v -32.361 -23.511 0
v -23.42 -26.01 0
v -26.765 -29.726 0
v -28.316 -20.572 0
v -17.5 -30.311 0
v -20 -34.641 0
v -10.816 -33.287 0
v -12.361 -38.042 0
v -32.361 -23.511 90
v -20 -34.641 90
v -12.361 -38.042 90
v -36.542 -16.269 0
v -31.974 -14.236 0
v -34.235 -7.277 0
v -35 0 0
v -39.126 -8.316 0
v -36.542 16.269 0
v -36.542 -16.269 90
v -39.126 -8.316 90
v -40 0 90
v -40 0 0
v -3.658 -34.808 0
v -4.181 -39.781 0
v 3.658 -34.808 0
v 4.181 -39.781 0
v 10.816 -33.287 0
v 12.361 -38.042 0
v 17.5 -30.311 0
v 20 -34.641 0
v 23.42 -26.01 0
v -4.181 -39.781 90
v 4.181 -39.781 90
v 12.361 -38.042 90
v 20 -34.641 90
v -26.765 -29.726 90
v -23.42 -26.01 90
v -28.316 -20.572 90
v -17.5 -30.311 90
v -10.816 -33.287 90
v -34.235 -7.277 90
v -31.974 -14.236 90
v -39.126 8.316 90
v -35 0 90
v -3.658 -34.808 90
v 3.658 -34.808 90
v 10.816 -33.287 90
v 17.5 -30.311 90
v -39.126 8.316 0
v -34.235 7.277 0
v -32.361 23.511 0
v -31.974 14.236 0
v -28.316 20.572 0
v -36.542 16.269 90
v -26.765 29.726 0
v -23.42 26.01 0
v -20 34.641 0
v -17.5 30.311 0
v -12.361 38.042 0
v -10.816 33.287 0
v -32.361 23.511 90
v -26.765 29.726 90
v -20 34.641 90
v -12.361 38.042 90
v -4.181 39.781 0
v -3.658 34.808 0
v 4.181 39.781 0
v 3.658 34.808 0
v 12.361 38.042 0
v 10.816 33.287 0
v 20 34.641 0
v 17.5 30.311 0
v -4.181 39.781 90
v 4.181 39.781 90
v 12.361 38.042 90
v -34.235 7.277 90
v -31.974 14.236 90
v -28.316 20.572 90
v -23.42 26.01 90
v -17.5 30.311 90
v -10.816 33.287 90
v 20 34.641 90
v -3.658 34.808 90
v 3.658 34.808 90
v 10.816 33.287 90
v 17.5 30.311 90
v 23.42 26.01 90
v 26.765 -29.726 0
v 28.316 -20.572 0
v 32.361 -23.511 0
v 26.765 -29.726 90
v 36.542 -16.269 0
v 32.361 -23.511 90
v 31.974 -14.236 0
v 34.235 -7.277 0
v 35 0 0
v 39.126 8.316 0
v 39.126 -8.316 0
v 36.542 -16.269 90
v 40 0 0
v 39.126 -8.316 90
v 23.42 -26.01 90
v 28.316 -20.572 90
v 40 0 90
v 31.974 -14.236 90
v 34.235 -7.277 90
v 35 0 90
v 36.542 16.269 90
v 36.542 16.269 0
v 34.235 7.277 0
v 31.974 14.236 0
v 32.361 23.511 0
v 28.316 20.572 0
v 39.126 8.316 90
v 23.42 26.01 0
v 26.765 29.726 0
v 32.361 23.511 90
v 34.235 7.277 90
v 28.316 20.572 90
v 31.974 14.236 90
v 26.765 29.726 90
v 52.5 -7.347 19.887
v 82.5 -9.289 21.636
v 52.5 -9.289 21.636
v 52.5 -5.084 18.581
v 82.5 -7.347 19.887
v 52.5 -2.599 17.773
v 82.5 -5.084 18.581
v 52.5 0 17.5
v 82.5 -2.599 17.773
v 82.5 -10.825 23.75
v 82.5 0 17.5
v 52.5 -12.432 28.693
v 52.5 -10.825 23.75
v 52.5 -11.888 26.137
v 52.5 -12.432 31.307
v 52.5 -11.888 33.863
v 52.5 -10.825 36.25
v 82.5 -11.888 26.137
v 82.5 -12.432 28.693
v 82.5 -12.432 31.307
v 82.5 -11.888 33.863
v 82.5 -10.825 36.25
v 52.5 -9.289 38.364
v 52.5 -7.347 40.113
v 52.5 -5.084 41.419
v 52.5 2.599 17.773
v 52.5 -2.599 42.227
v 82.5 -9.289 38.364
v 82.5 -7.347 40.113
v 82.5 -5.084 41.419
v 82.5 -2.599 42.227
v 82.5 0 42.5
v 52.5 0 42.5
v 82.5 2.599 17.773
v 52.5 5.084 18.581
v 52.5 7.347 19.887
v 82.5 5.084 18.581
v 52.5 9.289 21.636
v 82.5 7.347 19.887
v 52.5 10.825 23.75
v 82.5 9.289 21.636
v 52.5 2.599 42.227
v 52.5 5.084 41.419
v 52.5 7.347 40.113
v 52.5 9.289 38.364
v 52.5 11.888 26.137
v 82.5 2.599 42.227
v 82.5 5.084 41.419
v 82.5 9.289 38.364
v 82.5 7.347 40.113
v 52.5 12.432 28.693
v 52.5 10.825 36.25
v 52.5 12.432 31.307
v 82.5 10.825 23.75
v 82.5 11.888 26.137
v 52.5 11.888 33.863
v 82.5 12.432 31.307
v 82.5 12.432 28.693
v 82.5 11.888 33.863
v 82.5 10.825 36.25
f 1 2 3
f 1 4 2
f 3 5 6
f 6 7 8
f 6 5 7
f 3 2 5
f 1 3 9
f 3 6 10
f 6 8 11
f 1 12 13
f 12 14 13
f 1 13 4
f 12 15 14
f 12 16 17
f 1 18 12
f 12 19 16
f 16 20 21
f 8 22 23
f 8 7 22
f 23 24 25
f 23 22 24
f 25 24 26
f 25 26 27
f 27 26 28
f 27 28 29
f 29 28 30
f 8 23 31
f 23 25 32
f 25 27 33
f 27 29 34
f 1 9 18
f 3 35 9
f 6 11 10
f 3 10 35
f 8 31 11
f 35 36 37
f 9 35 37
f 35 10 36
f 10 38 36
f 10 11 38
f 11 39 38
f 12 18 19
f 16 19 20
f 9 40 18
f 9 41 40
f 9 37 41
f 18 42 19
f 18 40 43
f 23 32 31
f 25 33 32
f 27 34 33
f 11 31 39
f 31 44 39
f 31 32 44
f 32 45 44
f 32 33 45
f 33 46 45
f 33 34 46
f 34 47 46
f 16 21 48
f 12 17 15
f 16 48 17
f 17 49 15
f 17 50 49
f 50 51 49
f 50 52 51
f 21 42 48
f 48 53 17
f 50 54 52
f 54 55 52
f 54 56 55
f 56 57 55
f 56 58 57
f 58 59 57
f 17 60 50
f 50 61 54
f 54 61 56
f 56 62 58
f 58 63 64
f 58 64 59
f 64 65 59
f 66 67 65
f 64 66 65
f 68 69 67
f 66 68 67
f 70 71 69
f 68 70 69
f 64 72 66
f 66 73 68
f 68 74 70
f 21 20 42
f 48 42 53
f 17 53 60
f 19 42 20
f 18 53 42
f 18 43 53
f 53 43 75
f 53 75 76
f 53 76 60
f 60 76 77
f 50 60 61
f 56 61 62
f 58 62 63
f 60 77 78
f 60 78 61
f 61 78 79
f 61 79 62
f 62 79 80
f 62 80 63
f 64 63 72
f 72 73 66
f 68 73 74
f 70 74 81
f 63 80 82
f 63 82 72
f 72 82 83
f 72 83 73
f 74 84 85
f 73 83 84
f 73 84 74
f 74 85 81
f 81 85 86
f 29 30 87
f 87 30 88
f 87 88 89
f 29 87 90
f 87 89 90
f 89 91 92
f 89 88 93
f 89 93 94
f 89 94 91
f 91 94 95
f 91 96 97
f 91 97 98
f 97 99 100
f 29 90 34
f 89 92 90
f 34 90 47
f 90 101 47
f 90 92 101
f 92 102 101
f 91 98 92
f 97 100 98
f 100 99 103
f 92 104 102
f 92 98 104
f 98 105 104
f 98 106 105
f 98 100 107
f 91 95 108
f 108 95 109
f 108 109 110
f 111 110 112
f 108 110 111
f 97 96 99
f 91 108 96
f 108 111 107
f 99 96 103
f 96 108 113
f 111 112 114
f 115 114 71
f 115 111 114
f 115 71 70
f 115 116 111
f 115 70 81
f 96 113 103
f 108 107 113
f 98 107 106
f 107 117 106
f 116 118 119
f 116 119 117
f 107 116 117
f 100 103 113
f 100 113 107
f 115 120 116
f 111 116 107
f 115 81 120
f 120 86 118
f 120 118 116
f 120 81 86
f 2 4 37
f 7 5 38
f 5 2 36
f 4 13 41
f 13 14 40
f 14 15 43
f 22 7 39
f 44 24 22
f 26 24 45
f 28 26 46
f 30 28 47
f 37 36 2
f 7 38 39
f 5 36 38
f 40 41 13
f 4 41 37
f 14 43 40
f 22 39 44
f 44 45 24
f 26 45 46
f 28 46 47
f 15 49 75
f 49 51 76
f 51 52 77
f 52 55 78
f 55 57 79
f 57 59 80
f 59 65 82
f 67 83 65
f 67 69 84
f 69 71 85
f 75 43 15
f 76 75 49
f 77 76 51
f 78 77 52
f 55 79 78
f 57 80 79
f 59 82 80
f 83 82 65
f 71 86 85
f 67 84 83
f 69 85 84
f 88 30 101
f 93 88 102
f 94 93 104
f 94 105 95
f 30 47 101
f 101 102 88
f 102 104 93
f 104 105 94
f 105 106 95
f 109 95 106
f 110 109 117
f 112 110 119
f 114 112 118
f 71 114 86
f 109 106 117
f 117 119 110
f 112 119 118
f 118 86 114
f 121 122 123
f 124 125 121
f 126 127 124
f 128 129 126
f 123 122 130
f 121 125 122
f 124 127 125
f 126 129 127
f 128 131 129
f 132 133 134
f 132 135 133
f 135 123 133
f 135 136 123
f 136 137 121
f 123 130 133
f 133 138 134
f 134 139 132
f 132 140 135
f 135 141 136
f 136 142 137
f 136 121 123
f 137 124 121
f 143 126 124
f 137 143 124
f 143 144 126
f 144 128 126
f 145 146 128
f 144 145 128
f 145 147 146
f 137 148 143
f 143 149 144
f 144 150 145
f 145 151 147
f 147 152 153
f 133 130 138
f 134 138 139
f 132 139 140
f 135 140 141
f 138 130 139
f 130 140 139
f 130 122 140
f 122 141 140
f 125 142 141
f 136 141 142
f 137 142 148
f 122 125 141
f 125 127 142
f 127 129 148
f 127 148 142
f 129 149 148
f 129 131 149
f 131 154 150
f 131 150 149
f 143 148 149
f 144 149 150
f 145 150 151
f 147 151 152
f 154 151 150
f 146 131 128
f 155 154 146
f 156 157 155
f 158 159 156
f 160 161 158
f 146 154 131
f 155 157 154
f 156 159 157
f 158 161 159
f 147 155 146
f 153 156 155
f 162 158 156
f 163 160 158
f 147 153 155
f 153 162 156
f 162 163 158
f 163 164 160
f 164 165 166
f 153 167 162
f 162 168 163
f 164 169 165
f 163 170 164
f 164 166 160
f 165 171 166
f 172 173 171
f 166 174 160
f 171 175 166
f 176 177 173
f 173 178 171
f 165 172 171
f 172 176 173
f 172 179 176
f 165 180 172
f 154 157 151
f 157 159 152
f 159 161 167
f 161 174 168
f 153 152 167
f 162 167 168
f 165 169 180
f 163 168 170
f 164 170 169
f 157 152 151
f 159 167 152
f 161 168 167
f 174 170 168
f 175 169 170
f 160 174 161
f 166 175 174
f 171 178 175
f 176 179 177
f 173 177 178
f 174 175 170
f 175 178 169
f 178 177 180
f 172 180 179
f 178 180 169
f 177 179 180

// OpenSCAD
// マグカップのパラメータ
outer_diameter = 80;
inner_diameter = 70;
height = 90;
bottom_thickness = 6;
handle_width = 25;
handle_height = 30;

// モジュール定義：円筒形マグ本体
module mug_body() {
  difference() {
    cylinder(h = height, r = outer_diameter / 2);
    translate([0, 0, -bottom_thickness]) cylinder(h = bottom_thickness, r = inner_diameter / 2);
    cylinder(h = height + bottom_thickness, r = inner_diameter / 2);
  }
}

// モジュール定義：D字型取手
module handle() {
  linear_extrude(height = handle_height) {
    difference() {
      circle(r = handle_width / 2);
      translate([handle_width/2,0]) square([handle_width, handle_width]);
    }
  }
}

// マグカップ全体の作成
module mug_with_handle() {
  union() {
    mug_body();
    translate([outer_diameter / 2 + handle_width/2, 0, height / 2 - handle_height / 2])
      rotate([0,90,0])
        handle();
  }
}

// マグカップの表示
mug_with_handle();
